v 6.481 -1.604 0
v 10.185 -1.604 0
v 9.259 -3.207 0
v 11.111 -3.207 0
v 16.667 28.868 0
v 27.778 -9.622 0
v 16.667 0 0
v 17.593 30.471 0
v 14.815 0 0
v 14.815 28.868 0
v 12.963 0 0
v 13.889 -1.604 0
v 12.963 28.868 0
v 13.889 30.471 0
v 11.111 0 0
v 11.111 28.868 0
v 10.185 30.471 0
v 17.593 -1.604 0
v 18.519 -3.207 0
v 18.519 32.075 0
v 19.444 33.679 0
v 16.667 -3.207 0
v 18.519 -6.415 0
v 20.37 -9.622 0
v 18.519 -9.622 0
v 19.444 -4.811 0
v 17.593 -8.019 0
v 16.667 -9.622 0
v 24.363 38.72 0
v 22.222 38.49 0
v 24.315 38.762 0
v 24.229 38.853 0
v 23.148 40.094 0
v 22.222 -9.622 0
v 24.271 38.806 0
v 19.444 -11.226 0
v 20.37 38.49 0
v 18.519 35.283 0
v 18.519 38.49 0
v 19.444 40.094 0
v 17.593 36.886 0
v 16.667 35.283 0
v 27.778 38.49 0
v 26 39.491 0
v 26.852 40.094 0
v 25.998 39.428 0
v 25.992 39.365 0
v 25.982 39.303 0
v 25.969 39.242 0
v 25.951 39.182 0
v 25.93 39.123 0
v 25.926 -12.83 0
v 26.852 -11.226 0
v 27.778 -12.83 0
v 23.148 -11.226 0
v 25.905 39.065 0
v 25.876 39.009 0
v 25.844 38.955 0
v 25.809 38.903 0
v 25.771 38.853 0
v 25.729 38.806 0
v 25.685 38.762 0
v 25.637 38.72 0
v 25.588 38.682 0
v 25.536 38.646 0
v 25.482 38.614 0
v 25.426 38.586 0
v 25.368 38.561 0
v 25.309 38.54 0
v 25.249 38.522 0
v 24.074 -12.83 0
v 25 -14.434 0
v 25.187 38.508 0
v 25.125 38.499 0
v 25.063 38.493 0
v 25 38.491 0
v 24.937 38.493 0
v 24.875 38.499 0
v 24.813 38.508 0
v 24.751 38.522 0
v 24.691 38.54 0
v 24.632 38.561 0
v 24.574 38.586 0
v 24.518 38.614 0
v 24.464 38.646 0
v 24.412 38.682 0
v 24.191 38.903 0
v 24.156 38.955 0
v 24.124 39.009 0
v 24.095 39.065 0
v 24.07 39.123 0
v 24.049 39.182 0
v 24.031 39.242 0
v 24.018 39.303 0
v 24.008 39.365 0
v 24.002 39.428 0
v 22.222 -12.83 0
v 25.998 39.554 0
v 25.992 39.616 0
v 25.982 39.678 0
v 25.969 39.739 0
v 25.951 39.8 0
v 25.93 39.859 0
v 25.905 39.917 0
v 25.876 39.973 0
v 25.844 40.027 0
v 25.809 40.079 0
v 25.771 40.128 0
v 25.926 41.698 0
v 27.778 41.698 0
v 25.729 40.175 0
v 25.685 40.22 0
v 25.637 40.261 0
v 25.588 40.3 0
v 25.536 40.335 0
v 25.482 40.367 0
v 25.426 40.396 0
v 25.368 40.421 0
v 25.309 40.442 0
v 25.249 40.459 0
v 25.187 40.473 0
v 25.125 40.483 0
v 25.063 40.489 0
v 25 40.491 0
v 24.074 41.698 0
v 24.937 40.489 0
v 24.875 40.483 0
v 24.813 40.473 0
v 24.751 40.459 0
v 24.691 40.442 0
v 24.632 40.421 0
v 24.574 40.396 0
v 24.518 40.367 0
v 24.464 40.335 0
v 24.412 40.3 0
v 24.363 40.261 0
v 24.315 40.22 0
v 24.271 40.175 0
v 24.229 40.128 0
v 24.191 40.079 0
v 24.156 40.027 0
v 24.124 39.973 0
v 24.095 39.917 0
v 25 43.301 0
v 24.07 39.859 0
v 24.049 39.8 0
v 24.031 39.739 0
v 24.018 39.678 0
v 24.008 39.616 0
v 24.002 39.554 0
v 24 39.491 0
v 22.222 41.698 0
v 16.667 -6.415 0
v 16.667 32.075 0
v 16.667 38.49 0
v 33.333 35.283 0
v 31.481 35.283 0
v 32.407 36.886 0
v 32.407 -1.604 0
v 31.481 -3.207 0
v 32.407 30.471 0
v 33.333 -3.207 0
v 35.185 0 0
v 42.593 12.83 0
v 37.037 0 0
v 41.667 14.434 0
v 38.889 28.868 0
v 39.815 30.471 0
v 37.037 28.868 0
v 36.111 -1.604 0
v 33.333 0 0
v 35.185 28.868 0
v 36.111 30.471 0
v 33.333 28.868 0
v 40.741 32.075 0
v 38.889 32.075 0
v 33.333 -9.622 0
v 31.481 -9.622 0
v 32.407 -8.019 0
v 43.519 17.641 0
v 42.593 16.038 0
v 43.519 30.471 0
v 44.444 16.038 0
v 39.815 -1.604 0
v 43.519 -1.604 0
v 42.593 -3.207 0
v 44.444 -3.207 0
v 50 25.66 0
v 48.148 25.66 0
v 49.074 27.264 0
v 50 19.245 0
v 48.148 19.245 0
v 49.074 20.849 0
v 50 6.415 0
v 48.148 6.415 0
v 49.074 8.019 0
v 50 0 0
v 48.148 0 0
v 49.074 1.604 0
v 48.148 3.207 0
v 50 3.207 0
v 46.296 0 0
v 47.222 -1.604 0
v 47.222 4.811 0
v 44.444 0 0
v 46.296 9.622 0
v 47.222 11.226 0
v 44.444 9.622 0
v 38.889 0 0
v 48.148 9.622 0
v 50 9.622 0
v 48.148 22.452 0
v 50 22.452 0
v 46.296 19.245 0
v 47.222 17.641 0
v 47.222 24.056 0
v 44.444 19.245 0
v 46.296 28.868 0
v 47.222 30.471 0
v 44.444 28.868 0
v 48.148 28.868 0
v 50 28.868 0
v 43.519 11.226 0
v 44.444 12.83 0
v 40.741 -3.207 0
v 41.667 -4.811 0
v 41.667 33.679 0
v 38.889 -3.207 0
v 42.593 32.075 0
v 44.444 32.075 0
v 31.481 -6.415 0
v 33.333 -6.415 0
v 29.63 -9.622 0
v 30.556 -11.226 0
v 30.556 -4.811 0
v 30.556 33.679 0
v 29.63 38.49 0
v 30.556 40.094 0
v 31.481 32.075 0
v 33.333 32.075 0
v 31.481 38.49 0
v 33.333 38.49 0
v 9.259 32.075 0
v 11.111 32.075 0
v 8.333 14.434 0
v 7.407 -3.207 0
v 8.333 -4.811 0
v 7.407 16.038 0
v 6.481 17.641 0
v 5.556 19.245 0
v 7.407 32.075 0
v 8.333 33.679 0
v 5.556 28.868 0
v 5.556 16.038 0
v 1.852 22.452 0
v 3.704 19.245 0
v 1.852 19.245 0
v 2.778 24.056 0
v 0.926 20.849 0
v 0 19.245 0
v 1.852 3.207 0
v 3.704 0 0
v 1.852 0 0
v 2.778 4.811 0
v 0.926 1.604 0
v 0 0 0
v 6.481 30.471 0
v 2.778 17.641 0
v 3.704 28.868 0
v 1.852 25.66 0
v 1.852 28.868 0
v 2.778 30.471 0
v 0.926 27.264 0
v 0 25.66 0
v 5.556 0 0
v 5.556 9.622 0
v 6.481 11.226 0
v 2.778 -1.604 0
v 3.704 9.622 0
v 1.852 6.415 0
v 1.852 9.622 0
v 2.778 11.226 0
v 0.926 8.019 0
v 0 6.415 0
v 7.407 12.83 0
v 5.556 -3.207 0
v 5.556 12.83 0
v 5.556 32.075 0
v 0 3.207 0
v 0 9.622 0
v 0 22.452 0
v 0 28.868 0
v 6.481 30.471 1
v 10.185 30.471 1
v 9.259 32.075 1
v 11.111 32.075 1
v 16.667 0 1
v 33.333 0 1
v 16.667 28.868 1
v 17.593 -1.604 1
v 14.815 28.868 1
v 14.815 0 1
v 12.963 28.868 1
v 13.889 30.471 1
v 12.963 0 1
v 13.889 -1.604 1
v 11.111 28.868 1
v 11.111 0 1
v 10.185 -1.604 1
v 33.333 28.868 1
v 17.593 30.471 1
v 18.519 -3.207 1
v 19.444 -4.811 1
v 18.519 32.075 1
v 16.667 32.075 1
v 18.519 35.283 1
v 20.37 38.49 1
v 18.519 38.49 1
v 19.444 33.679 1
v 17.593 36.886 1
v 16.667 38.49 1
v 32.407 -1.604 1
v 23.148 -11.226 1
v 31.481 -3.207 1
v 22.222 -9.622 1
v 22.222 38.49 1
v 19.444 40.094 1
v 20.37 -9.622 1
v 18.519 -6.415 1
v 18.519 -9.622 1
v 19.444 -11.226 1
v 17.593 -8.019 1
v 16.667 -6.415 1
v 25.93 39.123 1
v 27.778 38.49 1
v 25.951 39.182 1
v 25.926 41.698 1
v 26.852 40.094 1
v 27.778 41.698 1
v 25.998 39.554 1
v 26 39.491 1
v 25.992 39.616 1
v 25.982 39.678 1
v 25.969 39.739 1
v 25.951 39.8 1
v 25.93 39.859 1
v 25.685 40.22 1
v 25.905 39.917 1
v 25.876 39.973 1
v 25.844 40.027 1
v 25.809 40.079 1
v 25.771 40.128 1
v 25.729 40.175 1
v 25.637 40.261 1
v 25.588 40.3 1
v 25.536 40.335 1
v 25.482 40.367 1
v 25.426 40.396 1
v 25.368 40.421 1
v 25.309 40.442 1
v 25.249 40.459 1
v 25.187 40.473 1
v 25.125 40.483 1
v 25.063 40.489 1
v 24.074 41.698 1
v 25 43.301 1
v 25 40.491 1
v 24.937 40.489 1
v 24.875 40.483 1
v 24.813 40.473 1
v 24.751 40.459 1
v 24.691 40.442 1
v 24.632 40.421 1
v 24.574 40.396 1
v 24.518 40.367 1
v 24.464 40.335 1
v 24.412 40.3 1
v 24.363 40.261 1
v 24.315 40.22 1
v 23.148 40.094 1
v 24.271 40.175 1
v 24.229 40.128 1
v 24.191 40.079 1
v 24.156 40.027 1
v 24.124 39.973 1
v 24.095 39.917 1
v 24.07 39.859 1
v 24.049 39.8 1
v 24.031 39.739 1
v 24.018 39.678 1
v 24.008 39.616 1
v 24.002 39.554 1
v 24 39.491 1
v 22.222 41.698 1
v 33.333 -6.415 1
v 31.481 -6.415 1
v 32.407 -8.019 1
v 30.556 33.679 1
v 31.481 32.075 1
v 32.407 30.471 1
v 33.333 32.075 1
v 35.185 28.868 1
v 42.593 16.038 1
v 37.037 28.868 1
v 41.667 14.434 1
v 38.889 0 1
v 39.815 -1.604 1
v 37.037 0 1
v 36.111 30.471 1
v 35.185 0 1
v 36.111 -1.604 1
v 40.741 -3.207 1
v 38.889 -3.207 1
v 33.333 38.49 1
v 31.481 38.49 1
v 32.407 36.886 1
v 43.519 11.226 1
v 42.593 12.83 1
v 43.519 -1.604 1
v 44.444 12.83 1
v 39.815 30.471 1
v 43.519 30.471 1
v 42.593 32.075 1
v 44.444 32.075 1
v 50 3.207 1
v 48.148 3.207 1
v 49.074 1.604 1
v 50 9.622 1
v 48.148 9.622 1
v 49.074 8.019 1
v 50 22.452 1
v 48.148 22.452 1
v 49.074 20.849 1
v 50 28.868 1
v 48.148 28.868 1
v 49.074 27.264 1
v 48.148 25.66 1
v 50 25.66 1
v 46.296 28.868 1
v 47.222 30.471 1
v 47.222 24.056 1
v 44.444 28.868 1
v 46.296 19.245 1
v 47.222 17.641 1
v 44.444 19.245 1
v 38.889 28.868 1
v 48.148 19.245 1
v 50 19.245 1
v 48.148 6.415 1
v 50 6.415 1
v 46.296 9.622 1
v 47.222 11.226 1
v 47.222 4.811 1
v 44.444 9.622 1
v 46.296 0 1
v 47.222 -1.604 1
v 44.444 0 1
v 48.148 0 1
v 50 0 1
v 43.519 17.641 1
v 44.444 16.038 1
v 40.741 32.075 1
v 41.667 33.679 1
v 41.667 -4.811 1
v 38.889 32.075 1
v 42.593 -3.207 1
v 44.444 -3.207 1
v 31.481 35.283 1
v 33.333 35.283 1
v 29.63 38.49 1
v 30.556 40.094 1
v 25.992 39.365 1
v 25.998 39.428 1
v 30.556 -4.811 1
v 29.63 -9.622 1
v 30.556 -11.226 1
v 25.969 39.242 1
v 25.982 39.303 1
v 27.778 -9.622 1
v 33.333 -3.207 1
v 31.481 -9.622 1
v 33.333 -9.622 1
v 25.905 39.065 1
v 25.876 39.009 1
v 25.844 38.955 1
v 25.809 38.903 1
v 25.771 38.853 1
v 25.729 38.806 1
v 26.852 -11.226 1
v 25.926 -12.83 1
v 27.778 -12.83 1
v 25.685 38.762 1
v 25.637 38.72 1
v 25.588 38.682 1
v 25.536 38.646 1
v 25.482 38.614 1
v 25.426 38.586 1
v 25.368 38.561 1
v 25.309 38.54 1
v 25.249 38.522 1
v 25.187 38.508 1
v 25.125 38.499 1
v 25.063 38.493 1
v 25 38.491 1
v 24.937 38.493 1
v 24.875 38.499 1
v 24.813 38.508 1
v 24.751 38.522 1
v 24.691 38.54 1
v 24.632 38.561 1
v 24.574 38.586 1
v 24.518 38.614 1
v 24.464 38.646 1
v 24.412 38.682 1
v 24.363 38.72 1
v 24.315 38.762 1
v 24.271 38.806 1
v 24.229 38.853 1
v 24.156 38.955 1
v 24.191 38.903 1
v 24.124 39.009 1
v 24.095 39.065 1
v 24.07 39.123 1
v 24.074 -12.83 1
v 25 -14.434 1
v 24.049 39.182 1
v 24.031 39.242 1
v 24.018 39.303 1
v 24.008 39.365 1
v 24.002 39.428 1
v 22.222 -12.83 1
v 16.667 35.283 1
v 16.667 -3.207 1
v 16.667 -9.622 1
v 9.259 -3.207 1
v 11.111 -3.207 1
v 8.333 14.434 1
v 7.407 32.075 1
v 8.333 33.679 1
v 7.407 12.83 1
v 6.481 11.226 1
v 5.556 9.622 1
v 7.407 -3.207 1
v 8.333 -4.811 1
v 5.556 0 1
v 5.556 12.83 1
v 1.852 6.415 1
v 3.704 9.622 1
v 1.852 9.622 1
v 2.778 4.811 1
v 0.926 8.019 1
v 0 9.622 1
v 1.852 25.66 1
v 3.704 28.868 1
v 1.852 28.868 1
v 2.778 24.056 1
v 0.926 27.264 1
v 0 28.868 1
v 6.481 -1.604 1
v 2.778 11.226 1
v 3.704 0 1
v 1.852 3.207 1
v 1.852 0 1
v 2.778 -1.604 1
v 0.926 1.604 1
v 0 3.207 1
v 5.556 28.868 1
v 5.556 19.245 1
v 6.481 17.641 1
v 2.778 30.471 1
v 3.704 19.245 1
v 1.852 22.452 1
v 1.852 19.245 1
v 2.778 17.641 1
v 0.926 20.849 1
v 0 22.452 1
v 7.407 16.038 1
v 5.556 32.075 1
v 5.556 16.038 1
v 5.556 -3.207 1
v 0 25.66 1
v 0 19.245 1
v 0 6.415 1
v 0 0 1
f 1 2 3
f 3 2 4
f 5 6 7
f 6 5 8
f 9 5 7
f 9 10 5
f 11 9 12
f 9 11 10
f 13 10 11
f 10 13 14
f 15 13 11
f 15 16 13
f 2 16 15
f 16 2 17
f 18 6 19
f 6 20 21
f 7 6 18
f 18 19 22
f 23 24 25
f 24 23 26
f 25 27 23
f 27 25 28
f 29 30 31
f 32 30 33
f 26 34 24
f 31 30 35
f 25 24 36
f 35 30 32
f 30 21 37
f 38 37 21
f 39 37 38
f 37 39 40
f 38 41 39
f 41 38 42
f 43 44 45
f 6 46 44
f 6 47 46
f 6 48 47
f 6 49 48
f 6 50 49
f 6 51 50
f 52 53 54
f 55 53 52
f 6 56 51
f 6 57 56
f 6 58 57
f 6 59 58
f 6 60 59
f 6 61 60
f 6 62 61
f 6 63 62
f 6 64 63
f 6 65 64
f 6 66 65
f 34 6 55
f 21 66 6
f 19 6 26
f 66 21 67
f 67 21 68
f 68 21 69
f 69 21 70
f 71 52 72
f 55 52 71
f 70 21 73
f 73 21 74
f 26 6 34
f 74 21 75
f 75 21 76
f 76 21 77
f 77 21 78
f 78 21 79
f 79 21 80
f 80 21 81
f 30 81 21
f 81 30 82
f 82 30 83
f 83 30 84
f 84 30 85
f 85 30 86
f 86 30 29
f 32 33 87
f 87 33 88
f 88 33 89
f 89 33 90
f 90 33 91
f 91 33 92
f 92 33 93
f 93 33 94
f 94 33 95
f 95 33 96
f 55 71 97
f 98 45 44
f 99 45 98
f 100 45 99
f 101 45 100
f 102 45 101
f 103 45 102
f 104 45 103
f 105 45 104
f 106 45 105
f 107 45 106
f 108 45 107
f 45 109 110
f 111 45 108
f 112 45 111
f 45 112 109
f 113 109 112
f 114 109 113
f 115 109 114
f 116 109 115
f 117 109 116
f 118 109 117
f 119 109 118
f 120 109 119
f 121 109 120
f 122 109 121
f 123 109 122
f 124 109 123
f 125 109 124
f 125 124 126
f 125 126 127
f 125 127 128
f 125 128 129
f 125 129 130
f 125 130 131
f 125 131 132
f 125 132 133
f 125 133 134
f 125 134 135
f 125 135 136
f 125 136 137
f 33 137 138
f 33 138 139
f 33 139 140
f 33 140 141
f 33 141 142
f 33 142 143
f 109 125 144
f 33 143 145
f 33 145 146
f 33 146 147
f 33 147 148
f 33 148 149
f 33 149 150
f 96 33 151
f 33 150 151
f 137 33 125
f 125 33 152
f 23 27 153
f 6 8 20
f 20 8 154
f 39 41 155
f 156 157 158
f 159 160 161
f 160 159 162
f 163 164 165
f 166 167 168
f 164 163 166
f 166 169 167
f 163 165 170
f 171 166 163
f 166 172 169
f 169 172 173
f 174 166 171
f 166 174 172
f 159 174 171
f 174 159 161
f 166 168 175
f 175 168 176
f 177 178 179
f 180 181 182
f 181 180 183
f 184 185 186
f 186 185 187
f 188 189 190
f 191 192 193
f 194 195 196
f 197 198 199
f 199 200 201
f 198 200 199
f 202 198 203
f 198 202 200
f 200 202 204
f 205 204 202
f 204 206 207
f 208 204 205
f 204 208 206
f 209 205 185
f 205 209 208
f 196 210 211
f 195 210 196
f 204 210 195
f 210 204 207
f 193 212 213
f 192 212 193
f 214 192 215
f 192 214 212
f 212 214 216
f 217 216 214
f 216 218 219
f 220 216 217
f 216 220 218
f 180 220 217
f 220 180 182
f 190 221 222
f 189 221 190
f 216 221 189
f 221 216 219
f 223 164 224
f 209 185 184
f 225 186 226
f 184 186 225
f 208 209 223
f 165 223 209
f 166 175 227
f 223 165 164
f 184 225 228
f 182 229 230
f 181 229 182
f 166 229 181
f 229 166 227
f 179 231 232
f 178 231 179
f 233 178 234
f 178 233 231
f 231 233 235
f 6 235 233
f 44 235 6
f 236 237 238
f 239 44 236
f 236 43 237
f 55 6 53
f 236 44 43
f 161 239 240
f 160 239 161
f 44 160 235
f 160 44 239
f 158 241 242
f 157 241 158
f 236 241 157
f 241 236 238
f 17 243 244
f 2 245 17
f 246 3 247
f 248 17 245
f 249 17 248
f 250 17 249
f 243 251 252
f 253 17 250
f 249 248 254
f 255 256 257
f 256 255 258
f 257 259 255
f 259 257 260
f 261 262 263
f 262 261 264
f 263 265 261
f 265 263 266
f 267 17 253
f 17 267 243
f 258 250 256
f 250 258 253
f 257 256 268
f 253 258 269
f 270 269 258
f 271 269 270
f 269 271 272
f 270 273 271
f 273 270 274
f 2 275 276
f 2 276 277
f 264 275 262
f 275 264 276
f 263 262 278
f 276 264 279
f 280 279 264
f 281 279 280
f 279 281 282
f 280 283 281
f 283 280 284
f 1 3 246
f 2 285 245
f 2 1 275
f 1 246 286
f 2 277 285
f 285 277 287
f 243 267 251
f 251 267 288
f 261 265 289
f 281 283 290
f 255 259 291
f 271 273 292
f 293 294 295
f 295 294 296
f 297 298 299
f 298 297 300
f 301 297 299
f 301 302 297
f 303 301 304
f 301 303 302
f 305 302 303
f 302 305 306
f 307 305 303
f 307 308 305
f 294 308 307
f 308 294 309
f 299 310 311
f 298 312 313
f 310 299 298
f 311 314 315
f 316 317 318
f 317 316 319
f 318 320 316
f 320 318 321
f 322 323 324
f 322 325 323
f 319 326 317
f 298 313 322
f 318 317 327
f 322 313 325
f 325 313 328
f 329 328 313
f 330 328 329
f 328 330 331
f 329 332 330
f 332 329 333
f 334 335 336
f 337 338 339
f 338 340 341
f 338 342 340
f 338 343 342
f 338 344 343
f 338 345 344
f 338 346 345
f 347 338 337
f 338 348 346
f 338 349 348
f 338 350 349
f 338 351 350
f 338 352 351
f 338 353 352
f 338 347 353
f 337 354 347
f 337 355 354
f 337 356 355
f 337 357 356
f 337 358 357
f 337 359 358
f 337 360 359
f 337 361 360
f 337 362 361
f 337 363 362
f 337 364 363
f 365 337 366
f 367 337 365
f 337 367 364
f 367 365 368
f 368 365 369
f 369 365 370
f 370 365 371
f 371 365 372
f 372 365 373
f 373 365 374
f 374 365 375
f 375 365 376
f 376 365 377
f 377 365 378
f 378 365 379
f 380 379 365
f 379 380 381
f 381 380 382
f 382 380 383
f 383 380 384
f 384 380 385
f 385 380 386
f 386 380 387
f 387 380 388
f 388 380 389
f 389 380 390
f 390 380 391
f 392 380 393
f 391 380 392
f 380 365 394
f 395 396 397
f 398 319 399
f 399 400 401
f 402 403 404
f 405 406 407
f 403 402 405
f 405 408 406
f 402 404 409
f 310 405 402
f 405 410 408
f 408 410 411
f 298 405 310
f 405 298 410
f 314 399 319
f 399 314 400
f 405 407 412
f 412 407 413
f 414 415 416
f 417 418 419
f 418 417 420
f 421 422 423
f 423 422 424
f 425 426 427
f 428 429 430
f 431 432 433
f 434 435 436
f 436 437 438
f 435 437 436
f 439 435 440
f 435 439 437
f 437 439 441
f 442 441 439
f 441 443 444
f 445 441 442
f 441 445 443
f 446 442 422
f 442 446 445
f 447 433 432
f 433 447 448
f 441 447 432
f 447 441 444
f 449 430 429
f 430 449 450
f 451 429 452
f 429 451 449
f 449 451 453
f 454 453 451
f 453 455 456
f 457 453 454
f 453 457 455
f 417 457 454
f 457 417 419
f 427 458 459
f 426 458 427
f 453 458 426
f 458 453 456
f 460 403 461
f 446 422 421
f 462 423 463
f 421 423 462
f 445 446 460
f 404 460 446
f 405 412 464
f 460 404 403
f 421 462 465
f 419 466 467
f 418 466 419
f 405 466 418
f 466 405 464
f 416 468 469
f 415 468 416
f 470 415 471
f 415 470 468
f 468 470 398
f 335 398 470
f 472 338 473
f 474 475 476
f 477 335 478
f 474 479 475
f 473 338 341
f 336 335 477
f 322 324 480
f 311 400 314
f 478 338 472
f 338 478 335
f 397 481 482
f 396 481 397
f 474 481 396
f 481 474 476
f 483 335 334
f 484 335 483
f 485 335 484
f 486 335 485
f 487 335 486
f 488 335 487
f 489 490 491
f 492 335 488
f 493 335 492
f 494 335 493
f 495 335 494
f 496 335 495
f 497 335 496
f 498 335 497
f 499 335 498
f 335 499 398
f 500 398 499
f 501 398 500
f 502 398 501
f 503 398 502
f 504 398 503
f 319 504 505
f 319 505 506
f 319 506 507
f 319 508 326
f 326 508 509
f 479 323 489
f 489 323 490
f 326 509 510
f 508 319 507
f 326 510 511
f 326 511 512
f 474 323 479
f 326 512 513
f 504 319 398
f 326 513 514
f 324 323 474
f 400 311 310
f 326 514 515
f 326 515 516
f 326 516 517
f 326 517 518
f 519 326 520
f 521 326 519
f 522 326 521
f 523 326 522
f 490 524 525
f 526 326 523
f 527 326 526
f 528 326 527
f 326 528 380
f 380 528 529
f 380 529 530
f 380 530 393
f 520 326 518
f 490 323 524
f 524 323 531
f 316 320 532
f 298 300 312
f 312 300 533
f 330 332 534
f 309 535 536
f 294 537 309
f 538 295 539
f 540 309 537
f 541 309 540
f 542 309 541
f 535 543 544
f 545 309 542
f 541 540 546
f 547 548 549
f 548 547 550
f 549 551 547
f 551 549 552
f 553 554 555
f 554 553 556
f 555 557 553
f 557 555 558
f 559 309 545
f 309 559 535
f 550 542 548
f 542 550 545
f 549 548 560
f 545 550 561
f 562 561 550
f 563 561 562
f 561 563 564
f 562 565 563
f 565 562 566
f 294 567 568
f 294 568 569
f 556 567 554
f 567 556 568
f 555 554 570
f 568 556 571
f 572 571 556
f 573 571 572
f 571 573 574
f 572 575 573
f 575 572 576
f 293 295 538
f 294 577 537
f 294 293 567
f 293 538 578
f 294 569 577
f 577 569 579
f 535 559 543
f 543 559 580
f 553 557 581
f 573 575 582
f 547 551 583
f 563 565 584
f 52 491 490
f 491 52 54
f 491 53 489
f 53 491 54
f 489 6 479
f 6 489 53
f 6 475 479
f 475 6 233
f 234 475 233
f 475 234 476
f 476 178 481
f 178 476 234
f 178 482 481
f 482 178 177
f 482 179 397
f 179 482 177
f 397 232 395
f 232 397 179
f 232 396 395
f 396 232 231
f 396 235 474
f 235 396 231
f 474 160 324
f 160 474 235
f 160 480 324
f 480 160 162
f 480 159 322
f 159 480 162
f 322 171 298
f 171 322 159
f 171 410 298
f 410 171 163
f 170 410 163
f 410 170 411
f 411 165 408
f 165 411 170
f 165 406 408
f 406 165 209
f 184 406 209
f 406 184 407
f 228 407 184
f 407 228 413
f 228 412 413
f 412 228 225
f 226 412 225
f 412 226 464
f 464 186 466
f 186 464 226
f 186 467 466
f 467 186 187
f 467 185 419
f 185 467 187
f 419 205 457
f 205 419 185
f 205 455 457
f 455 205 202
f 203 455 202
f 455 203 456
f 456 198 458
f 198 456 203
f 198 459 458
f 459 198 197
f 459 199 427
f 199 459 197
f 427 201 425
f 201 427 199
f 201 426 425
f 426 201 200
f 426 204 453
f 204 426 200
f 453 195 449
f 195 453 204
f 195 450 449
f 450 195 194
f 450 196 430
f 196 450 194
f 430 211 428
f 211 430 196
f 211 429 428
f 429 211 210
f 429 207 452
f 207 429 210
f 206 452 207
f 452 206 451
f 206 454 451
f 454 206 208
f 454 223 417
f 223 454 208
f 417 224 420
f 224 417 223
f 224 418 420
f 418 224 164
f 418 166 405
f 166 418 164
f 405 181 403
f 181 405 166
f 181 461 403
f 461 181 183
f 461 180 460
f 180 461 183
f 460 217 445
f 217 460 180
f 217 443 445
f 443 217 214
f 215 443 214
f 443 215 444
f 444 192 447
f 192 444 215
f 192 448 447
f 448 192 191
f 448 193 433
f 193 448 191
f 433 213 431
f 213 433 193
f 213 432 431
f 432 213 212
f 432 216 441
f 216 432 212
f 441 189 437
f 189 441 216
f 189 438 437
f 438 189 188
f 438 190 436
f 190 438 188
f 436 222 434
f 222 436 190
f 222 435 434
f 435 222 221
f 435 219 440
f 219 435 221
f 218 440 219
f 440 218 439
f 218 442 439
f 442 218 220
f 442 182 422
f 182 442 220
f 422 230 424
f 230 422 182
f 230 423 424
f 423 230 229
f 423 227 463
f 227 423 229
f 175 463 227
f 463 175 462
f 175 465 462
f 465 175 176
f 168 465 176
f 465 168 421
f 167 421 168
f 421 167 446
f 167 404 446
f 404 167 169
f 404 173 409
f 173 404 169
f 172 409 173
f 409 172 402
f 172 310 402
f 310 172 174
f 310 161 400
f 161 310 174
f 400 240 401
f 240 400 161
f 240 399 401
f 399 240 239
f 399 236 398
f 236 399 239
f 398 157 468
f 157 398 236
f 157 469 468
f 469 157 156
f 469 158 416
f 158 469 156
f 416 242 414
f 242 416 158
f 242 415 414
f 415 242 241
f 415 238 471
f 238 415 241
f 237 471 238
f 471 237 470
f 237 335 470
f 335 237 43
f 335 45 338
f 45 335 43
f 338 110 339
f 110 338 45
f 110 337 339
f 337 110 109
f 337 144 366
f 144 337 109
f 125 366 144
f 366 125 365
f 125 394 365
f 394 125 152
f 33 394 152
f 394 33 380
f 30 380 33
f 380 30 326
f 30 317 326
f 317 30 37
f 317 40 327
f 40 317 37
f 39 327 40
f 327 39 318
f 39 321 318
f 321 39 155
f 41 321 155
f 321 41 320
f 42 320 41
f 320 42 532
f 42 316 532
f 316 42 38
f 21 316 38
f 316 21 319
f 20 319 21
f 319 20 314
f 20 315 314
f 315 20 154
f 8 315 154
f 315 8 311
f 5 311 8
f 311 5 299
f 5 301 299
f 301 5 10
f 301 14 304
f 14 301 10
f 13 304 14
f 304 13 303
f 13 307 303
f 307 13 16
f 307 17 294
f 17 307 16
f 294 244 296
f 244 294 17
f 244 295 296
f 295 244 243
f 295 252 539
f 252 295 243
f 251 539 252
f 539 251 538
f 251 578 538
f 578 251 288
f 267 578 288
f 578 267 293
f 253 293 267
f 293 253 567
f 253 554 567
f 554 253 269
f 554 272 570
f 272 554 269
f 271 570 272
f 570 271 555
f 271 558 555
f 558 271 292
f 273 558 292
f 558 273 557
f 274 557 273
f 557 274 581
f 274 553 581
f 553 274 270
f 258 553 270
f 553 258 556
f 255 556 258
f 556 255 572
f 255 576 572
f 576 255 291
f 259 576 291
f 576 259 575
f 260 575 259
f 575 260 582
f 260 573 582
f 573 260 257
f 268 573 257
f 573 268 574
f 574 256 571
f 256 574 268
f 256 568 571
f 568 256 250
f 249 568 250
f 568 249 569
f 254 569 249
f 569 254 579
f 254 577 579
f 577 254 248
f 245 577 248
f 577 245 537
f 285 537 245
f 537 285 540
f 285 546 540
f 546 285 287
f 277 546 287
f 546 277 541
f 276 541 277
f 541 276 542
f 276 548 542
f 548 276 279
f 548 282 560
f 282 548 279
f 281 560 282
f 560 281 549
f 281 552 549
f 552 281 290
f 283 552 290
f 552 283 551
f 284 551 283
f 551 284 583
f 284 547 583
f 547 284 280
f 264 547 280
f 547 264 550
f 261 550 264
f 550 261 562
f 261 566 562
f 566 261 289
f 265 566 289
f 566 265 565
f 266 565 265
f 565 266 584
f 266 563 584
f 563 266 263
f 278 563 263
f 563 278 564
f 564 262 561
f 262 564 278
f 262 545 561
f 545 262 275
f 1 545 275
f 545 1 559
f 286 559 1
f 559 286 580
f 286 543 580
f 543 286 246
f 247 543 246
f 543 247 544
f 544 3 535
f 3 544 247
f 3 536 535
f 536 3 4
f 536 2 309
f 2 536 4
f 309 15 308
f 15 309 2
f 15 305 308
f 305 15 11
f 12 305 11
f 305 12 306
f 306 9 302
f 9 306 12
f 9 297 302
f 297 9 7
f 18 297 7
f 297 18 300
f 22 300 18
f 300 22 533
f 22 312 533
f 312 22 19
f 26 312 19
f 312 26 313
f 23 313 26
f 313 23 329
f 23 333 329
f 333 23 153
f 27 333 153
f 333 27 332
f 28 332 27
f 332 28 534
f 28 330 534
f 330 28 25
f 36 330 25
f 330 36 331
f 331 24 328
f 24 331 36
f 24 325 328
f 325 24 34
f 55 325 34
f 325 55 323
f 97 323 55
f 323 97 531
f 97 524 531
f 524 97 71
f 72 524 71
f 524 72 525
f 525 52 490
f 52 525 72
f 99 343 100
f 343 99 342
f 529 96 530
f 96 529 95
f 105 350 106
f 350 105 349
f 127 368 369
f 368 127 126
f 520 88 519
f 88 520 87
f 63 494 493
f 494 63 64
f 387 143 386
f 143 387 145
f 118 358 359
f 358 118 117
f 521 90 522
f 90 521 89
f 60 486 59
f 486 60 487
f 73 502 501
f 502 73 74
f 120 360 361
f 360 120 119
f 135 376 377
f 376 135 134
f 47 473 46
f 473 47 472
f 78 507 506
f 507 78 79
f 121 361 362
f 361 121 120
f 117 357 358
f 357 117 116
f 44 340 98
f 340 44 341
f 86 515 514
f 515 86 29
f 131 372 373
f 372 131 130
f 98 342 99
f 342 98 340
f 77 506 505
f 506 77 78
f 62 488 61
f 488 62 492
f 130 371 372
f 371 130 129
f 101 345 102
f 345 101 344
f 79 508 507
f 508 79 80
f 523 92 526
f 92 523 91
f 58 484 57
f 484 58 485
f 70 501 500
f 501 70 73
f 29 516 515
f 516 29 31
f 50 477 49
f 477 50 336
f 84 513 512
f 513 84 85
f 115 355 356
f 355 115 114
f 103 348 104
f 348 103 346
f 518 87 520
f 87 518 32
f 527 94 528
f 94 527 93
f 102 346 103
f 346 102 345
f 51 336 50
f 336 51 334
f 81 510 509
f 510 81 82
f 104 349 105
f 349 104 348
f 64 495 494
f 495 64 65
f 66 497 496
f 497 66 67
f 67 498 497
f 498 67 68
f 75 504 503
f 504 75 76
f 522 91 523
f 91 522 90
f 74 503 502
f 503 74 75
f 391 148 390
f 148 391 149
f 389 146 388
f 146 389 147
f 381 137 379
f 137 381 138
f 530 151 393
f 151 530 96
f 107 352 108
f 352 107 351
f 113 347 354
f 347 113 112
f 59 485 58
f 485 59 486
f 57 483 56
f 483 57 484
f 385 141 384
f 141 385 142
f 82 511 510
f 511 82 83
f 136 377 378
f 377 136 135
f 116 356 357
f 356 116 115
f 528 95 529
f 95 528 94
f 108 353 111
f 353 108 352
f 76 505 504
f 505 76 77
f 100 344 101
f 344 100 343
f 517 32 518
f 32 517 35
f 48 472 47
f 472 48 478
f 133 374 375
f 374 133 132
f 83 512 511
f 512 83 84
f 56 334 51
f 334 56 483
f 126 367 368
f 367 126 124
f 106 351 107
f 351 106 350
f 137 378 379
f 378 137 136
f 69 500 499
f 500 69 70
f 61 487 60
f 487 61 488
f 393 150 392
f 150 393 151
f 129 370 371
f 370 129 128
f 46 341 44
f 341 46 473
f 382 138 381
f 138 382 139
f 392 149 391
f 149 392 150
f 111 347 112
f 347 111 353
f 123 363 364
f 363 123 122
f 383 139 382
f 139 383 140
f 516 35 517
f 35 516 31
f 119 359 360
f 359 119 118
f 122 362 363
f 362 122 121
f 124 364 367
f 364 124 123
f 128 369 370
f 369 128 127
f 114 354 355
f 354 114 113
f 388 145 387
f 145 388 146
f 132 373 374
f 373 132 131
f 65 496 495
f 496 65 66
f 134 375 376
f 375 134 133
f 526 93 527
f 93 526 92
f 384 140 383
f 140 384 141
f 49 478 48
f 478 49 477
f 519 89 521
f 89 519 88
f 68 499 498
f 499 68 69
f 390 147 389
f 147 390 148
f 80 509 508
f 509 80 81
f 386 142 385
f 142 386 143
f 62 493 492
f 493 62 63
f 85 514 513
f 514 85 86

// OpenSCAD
difference(){
    linear_extrude(height=1.0){
        polygon(points=[[0, 0], [0.9259259259259257, 1.6037507477489603], [0.9259259259259257, 1.6037507477489603], [-2.220446049250313e-16, 3.2075014954979206], [-2.220446049250313e-16, 3.2075014954979206], [1.8518518518518514, 3.2075014954979206], [1.8518518518518514, 3.2075014954979206], [2.7777777777777772, 4.811252243246881], [2.7777777777777772, 4.811252243246881], [1.8518518518518512, 6.415002990995841], [1.8518518518518512, 6.415002990995841], [-6.661338147750939e-16, 6.415002990995841], [-6.661338147750939e-16, 6.415002990995841], [0.9259259259259252, 8.018753738744802], [0.9259259259259252, 8.018753738744802], [-8.881784197001252e-16, 9.622504486493762], [-8.881784197001252e-16, 9.622504486493762], [1.8518518518518507, 9.622504486493762], [1.8518518518518507, 9.622504486493762], [2.777777777777777, 11.226255234242723], [2.777777777777777, 11.226255234242723], [3.7037037037037024, 9.622504486493762], [3.7037037037037024, 9.622504486493762], [5.5555555555555545, 9.622504486493762], [5.5555555555555545, 9.622504486493762], [6.48148148148148, 11.226255234242723], [6.48148148148148, 11.226255234242723], [5.555555555555554, 12.830005981991683], [5.555555555555554, 12.830005981991683], [7.4074074074074066, 12.830005981991683], [7.4074074074074066, 12.830005981991683], [8.333333333333332, 14.433756729740644], [8.333333333333332, 14.433756729740644], [7.4074074074074066, 16.037507477489605], [7.4074074074074066, 16.037507477489605], [5.555555555555555, 16.037507477489605], [5.555555555555555, 16.037507477489605], [6.481481481481481, 17.641258225238563], [6.481481481481481, 17.641258225238563], [5.555555555555555, 19.245008972987524], [5.555555555555555, 19.245008972987524], [3.7037037037037033, 19.245008972987524], [3.7037037037037033, 19.245008972987524], [2.7777777777777772, 17.641258225238563], [2.7777777777777772, 17.641258225238563], [1.8518518518518512, 19.245008972987524], [1.8518518518518512, 19.245008972987524], [-8.881784197001252e-16, 19.245008972987524], [-8.881784197001252e-16, 19.245008972987524], [0.9259259259259253, 20.848759720736485], [0.9259259259259253, 20.848759720736485], [-2.220446049250313e-16, 22.452510468485443], [-2.220446049250313e-16, 22.452510468485443], [1.8518518518518514, 22.452510468485443], [1.8518518518518514, 22.452510468485443], [2.7777777777777777, 24.056261216234404], [2.7777777777777777, 24.056261216234404], [1.8518518518518519, 25.660011963983365], [1.8518518518518519, 25.660011963983365], [-8.881784197001252e-16, 25.660011963983365], [-8.881784197001252e-16, 25.660011963983365], [0.925925925925926, 27.263762711732326], [0.925925925925926, 27.263762711732326], [0.0, 28.867513459481287], [0.0, 28.867513459481287], [1.8518518518518514, 28.867513459481287], [1.8518518518518514, 28.867513459481287], [2.7777777777777772, 30.47126420723025], [2.7777777777777772, 30.47126420723025], [3.703703703703703, 28.867513459481287], [3.703703703703703, 28.867513459481287], [5.5555555555555545, 28.867513459481287], [5.5555555555555545, 28.867513459481287], [6.48148148148148, 30.47126420723025], [6.48148148148148, 30.47126420723025], [5.555555555555554, 32.07501495497921], [5.555555555555554, 32.07501495497921], [7.4074074074074066, 32.07501495497921], [7.4074074074074066, 32.07501495497921], [8.333333333333332, 33.67876570272817], [8.333333333333332, 33.67876570272817], [9.259259259259258, 32.07501495497921], [9.259259259259258, 32.07501495497921], [11.11111111111111, 32.07501495497921], [11.11111111111111, 32.07501495497921], [10.185185185185183, 30.47126420723025], [10.185185185185183, 30.47126420723025], [11.111111111111109, 28.867513459481287], [11.111111111111109, 28.867513459481287], [12.96296296296296, 28.867513459481287], [12.96296296296296, 28.867513459481287], [13.888888888888886, 30.47126420723025], [13.888888888888886, 30.47126420723025], [14.814814814814813, 28.867513459481287], [14.814814814814813, 28.867513459481287], [16.666666666666664, 28.867513459481287], [16.666666666666664, 28.867513459481287], [17.59259259259259, 30.47126420723025], [17.59259259259259, 30.47126420723025], [16.666666666666664, 32.07501495497921], [16.666666666666664, 32.07501495497921], [18.518518518518515, 32.07501495497921], [18.518518518518515, 32.07501495497921], [19.444444444444443, 33.67876570272817], [19.444444444444443, 33.67876570272817], [18.518518518518515, 35.28251645047713], [18.518518518518515, 35.28251645047713], [16.666666666666664, 35.28251645047713], [16.666666666666664, 35.28251645047713], [17.59259259259259, 36.88626719822609], [17.59259259259259, 36.88626719822609], [16.666666666666664, 38.490017945975055], [16.666666666666664, 38.490017945975055], [18.518518518518515, 38.490017945975055], [18.518518518518515, 38.490017945975055], [19.444444444444446, 40.093768693724016], [19.444444444444446, 40.093768693724016], [20.37037037037037, 38.49001794597505], [20.37037037037037, 38.49001794597505], [22.22222222222222, 38.49001794597505], [22.22222222222222, 38.49001794597505], [23.14814814814815, 40.09376869372401], [23.14814814814815, 40.09376869372401], [22.22222222222222, 41.69751944147297], [22.22222222222222, 41.69751944147297], [24.074074074074073, 41.69751944147297], [24.074074074074073, 41.69751944147297], [25.0, 43.30127018922193], [25.0, 43.30127018922193], [25.925925925925924, 41.69751944147297], [25.925925925925924, 41.69751944147297], [27.777777777777775, 41.69751944147297], [27.777777777777775, 41.69751944147297], [26.85185185185185, 40.09376869372401], [26.85185185185185, 40.09376869372401], [27.777777777777775, 38.49001794597505], [27.777777777777775, 38.49001794597505], [29.629629629629626, 38.49001794597505], [29.629629629629626, 38.49001794597505], [30.555555555555546, 40.093768693724016], [30.555555555555546, 40.093768693724016], [31.481481481481477, 38.490017945975055], [31.481481481481477, 38.490017945975055], [33.33333333333333, 38.490017945975055], [33.33333333333333, 38.490017945975055], [32.407407407407405, 36.88626719822609], [32.407407407407405, 36.88626719822609], [33.33333333333333, 35.28251645047713], [33.33333333333333, 35.28251645047713], [31.481481481481477, 35.28251645047713], [31.481481481481477, 35.28251645047713], [30.55555555555555, 33.67876570272817], [30.55555555555555, 33.67876570272817], [31.481481481481477, 32.07501495497921], [31.481481481481477, 32.07501495497921], [33.33333333333333, 32.07501495497921], [33.33333333333333, 32.07501495497921], [32.407407407407405, 30.47126420723025], [32.407407407407405, 30.47126420723025], [33.33333333333333, 28.867513459481287], [33.33333333333333, 28.867513459481287], [35.18518518518518, 28.867513459481287], [35.18518518518518, 28.867513459481287], [36.11111111111111, 30.47126420723025], [36.11111111111111, 30.47126420723025], [37.03703703703703, 28.867513459481287], [37.03703703703703, 28.867513459481287], [38.888888888888886, 28.867513459481287], [38.888888888888886, 28.867513459481287], [39.81481481481481, 30.47126420723025], [39.81481481481481, 30.47126420723025], [38.88888888888888, 32.07501495497921], [38.88888888888888, 32.07501495497921], [40.74074074074074, 32.07501495497921], [40.74074074074074, 32.07501495497921], [41.666666666666664, 33.67876570272817], [41.666666666666664, 33.67876570272817], [42.59259259259259, 32.07501495497921], [42.59259259259259, 32.07501495497921], [44.44444444444445, 32.07501495497921], [44.44444444444445, 32.07501495497921], [43.51851851851852, 30.47126420723025], [43.51851851851852, 30.47126420723025], [44.44444444444444, 28.867513459481287], [44.44444444444444, 28.867513459481287], [46.2962962962963, 28.867513459481287], [46.2962962962963, 28.867513459481287], [47.22222222222222, 30.47126420723025], [47.22222222222222, 30.47126420723025], [48.148148148148145, 28.867513459481287], [48.148148148148145, 28.867513459481287], [50.0, 28.867513459481287], [50.0, 28.867513459481287], [49.074074074074076, 27.263762711732326], [49.074074074074076, 27.263762711732326], [50.0, 25.660011963983365], [50.0, 25.660011963983365], [48.148148148148145, 25.66001196398337], [48.148148148148145, 25.66001196398337], [47.22222222222222, 24.056261216234407], [47.22222222222222, 24.056261216234407], [48.148148148148145, 22.452510468485446], [48.148148148148145, 22.452510468485446], [50.0, 22.452510468485443], [50.0, 22.452510468485443], [49.07407407407407, 20.848759720736485], [49.07407407407407, 20.848759720736485], [49.99999999999999, 19.245008972987524], [49.99999999999999, 19.245008972987524], [48.148148148148145, 19.245008972987524], [48.148148148148145, 19.245008972987524], [47.222222222222214, 17.64125822523857], [47.222222222222214, 17.64125822523857], [46.29629629629629, 19.245008972987527], [46.29629629629629, 19.245008972987527], [44.44444444444444, 19.245008972987527], [44.44444444444444, 19.245008972987527], [43.51851851851852, 17.641258225238566], [43.51851851851852, 17.641258225238566], [44.44444444444445, 16.037507477489605], [44.44444444444445, 16.037507477489605], [42.59259259259259, 16.037507477489605], [42.59259259259259, 16.037507477489605], [41.666666666666664, 14.433756729740644], [41.666666666666664, 14.433756729740644], [42.59259259259259, 12.830005981991684], [42.59259259259259, 12.830005981991684], [44.44444444444444, 12.830005981991684], [44.44444444444444, 12.830005981991684], [43.51851851851852, 11.226255234242725], [43.51851851851852, 11.226255234242725], [44.44444444444444, 9.622504486493764], [44.44444444444444, 9.622504486493764], [46.29629629629629, 9.622504486493764], [46.29629629629629, 9.622504486493764], [47.222222222222214, 11.226255234242723], [47.222222222222214, 11.226255234242723], [48.148148148148145, 9.622504486493764], [48.148148148148145, 9.622504486493764], [49.99999999999999, 9.622504486493764], [49.99999999999999, 9.622504486493764], [49.07407407407407, 8.018753738744802], [49.07407407407407, 8.018753738744802], [49.99999999999999, 6.415002990995845], [49.99999999999999, 6.415002990995845], [48.148148148148145, 6.415002990995843], [48.148148148148145, 6.415002990995843], [47.22222222222222, 4.811252243246882], [47.22222222222222, 4.811252243246882], [48.148148148148145, 3.2075014954979215], [48.148148148148145, 3.2075014954979215], [50.0, 3.2075014954979215], [50.0, 3.2075014954979215], [49.074074074074076, 1.6037507477489608], [49.074074074074076, 1.6037507477489608], [50.0, 0.0], [50.0, 0.0], [48.148148148148145, 0.0], [48.148148148148145, 0.0], [47.22222222222222, -1.603750747748961], [47.22222222222222, -1.603750747748961], [46.2962962962963, 0.0], [46.2962962962963, 0.0], [44.44444444444444, 0.0], [44.44444444444444, 0.0], [43.51851851851852, -1.6037507477489603], [43.51851851851852, -1.6037507477489603], [44.44444444444444, -3.207501495497919], [44.44444444444444, -3.207501495497919], [42.592592592592595, -3.2075014954979206], [42.592592592592595, -3.2075014954979206], [41.66666666666667, -4.811252243246881], [41.66666666666667, -4.811252243246881], [40.74074074074075, -3.2075014954979206], [40.74074074074075, -3.2075014954979206], [38.8888888888889, -3.207501495497921], [38.8888888888889, -3.207501495497921], [39.81481481481482, -1.6037507477489603], [39.81481481481482, -1.6037507477489603], [38.88888888888889, 0.0], [38.88888888888889, 0.0], [37.03703703703704, 0.0], [37.03703703703704, 0.0], [36.111111111111114, -1.603750747748961], [36.111111111111114, -1.603750747748961], [35.18518518518519, 0.0], [35.18518518518519, 0.0], [33.333333333333336, 0.0], [33.333333333333336, 0.0], [32.40740740740741, -1.6037507477489605], [32.40740740740741, -1.6037507477489605], [33.333333333333336, -3.2075014954979215], [33.333333333333336, -3.2075014954979215], [31.481481481481485, -3.207501495497921], [31.481481481481485, -3.207501495497921], [30.555555555555557, -4.811252243246882], [30.555555555555557, -4.811252243246882], [31.481481481481485, -6.415002990995842], [31.481481481481485, -6.415002990995842], [33.333333333333336, -6.415002990995842], [33.333333333333336, -6.415002990995842], [32.40740740740741, -8.018753738744802], [32.40740740740741, -8.018753738744802], [33.333333333333336, -9.622504486493764], [33.333333333333336, -9.622504486493764], [31.481481481481485, -9.622504486493764], [31.481481481481485, -9.622504486493764], [30.555555555555557, -11.226255234242725], [30.555555555555557, -11.226255234242725], [29.62962962962963, -9.622504486493764], [29.62962962962963, -9.622504486493764], [27.77777777777778, -9.622504486493764], [27.77777777777778, -9.622504486493764], [26.85185185185185, -11.226255234242725], [26.85185185185185, -11.226255234242725], [27.77777777777778, -12.830005981991686], [27.77777777777778, -12.830005981991686], [25.925925925925927, -12.830005981991684], [25.925925925925927, -12.830005981991684], [25.0, -14.433756729740645], [25.0, -14.433756729740645], [24.074074074074076, -12.830005981991684], [24.074074074074076, -12.830005981991684], [22.222222222222225, -12.830005981991684], [22.222222222222225, -12.830005981991684], [23.14814814814815, -11.226255234242725], [23.14814814814815, -11.226255234242725], [22.222222222222225, -9.622504486493764], [22.222222222222225, -9.622504486493764], [20.370370370370374, -9.622504486493764], [20.370370370370374, -9.622504486493764], [19.444444444444446, -11.226255234242725], [19.444444444444446, -11.226255234242725], [18.51851851851852, -9.622504486493762], [18.51851851851852, -9.622504486493762], [16.666666666666668, -9.622504486493762], [16.666666666666668, -9.622504486493762], [17.592592592592595, -8.018753738744802], [17.592592592592595, -8.018753738744802], [16.666666666666668, -6.41500299099584], [16.666666666666668, -6.41500299099584], [18.518518518518523, -6.415002990995842], [18.518518518518523, -6.415002990995842], [19.44444444444445, -4.811252243246882], [19.44444444444445, -4.811252243246882], [18.518518518518523, -3.2075014954979215], [18.518518518518523, -3.2075014954979215], [16.66666666666667, -3.2075014954979215], [16.66666666666667, -3.2075014954979215], [17.5925925925926, -1.6037507477489608], [17.5925925925926, -1.6037507477489608], [16.66666666666667, 0.0], [16.66666666666667, 0.0], [14.814814814814818, 0.0], [14.814814814814818, 0.0], [13.888888888888893, -1.603750747748961], [13.888888888888893, -1.603750747748961], [12.962962962962967, 0.0], [12.962962962962967, 0.0], [11.111111111111114, 0.0], [11.111111111111114, 0.0], [10.185185185185189, -1.6037507477489608], [10.185185185185189, -1.6037507477489608], [11.111111111111114, -3.207501495497922], [11.111111111111114, -3.207501495497922], [9.259259259259261, -3.2075014954979215], [9.259259259259261, -3.2075014954979215], [8.333333333333336, -4.811252243246883], [8.333333333333336, -4.811252243246883], [7.407407407407409, -3.207501495497922], [7.407407407407409, -3.207501495497922], [5.555555555555557, -3.207501495497922], [5.555555555555557, -3.207501495497922], [6.481481481481484, -1.6037507477489612], [6.481481481481484, -1.6037507477489612], [5.555555555555557, 0.0], [5.555555555555557, 0.0], [3.703703703703705, 0.0], [3.703703703703705, 0.0], [2.7777777777777786, -1.603750747748961], [2.7777777777777786, -1.603750747748961], [1.8518518518518525, 0.0], [1.8518518518518525, 0.0], [0, 0]]);
    };
    translate(v=[25.0, 39.4907584125704, -1.0]){
        cylinder(h=3.0, r=1.0, $fn=100);
    };
};
